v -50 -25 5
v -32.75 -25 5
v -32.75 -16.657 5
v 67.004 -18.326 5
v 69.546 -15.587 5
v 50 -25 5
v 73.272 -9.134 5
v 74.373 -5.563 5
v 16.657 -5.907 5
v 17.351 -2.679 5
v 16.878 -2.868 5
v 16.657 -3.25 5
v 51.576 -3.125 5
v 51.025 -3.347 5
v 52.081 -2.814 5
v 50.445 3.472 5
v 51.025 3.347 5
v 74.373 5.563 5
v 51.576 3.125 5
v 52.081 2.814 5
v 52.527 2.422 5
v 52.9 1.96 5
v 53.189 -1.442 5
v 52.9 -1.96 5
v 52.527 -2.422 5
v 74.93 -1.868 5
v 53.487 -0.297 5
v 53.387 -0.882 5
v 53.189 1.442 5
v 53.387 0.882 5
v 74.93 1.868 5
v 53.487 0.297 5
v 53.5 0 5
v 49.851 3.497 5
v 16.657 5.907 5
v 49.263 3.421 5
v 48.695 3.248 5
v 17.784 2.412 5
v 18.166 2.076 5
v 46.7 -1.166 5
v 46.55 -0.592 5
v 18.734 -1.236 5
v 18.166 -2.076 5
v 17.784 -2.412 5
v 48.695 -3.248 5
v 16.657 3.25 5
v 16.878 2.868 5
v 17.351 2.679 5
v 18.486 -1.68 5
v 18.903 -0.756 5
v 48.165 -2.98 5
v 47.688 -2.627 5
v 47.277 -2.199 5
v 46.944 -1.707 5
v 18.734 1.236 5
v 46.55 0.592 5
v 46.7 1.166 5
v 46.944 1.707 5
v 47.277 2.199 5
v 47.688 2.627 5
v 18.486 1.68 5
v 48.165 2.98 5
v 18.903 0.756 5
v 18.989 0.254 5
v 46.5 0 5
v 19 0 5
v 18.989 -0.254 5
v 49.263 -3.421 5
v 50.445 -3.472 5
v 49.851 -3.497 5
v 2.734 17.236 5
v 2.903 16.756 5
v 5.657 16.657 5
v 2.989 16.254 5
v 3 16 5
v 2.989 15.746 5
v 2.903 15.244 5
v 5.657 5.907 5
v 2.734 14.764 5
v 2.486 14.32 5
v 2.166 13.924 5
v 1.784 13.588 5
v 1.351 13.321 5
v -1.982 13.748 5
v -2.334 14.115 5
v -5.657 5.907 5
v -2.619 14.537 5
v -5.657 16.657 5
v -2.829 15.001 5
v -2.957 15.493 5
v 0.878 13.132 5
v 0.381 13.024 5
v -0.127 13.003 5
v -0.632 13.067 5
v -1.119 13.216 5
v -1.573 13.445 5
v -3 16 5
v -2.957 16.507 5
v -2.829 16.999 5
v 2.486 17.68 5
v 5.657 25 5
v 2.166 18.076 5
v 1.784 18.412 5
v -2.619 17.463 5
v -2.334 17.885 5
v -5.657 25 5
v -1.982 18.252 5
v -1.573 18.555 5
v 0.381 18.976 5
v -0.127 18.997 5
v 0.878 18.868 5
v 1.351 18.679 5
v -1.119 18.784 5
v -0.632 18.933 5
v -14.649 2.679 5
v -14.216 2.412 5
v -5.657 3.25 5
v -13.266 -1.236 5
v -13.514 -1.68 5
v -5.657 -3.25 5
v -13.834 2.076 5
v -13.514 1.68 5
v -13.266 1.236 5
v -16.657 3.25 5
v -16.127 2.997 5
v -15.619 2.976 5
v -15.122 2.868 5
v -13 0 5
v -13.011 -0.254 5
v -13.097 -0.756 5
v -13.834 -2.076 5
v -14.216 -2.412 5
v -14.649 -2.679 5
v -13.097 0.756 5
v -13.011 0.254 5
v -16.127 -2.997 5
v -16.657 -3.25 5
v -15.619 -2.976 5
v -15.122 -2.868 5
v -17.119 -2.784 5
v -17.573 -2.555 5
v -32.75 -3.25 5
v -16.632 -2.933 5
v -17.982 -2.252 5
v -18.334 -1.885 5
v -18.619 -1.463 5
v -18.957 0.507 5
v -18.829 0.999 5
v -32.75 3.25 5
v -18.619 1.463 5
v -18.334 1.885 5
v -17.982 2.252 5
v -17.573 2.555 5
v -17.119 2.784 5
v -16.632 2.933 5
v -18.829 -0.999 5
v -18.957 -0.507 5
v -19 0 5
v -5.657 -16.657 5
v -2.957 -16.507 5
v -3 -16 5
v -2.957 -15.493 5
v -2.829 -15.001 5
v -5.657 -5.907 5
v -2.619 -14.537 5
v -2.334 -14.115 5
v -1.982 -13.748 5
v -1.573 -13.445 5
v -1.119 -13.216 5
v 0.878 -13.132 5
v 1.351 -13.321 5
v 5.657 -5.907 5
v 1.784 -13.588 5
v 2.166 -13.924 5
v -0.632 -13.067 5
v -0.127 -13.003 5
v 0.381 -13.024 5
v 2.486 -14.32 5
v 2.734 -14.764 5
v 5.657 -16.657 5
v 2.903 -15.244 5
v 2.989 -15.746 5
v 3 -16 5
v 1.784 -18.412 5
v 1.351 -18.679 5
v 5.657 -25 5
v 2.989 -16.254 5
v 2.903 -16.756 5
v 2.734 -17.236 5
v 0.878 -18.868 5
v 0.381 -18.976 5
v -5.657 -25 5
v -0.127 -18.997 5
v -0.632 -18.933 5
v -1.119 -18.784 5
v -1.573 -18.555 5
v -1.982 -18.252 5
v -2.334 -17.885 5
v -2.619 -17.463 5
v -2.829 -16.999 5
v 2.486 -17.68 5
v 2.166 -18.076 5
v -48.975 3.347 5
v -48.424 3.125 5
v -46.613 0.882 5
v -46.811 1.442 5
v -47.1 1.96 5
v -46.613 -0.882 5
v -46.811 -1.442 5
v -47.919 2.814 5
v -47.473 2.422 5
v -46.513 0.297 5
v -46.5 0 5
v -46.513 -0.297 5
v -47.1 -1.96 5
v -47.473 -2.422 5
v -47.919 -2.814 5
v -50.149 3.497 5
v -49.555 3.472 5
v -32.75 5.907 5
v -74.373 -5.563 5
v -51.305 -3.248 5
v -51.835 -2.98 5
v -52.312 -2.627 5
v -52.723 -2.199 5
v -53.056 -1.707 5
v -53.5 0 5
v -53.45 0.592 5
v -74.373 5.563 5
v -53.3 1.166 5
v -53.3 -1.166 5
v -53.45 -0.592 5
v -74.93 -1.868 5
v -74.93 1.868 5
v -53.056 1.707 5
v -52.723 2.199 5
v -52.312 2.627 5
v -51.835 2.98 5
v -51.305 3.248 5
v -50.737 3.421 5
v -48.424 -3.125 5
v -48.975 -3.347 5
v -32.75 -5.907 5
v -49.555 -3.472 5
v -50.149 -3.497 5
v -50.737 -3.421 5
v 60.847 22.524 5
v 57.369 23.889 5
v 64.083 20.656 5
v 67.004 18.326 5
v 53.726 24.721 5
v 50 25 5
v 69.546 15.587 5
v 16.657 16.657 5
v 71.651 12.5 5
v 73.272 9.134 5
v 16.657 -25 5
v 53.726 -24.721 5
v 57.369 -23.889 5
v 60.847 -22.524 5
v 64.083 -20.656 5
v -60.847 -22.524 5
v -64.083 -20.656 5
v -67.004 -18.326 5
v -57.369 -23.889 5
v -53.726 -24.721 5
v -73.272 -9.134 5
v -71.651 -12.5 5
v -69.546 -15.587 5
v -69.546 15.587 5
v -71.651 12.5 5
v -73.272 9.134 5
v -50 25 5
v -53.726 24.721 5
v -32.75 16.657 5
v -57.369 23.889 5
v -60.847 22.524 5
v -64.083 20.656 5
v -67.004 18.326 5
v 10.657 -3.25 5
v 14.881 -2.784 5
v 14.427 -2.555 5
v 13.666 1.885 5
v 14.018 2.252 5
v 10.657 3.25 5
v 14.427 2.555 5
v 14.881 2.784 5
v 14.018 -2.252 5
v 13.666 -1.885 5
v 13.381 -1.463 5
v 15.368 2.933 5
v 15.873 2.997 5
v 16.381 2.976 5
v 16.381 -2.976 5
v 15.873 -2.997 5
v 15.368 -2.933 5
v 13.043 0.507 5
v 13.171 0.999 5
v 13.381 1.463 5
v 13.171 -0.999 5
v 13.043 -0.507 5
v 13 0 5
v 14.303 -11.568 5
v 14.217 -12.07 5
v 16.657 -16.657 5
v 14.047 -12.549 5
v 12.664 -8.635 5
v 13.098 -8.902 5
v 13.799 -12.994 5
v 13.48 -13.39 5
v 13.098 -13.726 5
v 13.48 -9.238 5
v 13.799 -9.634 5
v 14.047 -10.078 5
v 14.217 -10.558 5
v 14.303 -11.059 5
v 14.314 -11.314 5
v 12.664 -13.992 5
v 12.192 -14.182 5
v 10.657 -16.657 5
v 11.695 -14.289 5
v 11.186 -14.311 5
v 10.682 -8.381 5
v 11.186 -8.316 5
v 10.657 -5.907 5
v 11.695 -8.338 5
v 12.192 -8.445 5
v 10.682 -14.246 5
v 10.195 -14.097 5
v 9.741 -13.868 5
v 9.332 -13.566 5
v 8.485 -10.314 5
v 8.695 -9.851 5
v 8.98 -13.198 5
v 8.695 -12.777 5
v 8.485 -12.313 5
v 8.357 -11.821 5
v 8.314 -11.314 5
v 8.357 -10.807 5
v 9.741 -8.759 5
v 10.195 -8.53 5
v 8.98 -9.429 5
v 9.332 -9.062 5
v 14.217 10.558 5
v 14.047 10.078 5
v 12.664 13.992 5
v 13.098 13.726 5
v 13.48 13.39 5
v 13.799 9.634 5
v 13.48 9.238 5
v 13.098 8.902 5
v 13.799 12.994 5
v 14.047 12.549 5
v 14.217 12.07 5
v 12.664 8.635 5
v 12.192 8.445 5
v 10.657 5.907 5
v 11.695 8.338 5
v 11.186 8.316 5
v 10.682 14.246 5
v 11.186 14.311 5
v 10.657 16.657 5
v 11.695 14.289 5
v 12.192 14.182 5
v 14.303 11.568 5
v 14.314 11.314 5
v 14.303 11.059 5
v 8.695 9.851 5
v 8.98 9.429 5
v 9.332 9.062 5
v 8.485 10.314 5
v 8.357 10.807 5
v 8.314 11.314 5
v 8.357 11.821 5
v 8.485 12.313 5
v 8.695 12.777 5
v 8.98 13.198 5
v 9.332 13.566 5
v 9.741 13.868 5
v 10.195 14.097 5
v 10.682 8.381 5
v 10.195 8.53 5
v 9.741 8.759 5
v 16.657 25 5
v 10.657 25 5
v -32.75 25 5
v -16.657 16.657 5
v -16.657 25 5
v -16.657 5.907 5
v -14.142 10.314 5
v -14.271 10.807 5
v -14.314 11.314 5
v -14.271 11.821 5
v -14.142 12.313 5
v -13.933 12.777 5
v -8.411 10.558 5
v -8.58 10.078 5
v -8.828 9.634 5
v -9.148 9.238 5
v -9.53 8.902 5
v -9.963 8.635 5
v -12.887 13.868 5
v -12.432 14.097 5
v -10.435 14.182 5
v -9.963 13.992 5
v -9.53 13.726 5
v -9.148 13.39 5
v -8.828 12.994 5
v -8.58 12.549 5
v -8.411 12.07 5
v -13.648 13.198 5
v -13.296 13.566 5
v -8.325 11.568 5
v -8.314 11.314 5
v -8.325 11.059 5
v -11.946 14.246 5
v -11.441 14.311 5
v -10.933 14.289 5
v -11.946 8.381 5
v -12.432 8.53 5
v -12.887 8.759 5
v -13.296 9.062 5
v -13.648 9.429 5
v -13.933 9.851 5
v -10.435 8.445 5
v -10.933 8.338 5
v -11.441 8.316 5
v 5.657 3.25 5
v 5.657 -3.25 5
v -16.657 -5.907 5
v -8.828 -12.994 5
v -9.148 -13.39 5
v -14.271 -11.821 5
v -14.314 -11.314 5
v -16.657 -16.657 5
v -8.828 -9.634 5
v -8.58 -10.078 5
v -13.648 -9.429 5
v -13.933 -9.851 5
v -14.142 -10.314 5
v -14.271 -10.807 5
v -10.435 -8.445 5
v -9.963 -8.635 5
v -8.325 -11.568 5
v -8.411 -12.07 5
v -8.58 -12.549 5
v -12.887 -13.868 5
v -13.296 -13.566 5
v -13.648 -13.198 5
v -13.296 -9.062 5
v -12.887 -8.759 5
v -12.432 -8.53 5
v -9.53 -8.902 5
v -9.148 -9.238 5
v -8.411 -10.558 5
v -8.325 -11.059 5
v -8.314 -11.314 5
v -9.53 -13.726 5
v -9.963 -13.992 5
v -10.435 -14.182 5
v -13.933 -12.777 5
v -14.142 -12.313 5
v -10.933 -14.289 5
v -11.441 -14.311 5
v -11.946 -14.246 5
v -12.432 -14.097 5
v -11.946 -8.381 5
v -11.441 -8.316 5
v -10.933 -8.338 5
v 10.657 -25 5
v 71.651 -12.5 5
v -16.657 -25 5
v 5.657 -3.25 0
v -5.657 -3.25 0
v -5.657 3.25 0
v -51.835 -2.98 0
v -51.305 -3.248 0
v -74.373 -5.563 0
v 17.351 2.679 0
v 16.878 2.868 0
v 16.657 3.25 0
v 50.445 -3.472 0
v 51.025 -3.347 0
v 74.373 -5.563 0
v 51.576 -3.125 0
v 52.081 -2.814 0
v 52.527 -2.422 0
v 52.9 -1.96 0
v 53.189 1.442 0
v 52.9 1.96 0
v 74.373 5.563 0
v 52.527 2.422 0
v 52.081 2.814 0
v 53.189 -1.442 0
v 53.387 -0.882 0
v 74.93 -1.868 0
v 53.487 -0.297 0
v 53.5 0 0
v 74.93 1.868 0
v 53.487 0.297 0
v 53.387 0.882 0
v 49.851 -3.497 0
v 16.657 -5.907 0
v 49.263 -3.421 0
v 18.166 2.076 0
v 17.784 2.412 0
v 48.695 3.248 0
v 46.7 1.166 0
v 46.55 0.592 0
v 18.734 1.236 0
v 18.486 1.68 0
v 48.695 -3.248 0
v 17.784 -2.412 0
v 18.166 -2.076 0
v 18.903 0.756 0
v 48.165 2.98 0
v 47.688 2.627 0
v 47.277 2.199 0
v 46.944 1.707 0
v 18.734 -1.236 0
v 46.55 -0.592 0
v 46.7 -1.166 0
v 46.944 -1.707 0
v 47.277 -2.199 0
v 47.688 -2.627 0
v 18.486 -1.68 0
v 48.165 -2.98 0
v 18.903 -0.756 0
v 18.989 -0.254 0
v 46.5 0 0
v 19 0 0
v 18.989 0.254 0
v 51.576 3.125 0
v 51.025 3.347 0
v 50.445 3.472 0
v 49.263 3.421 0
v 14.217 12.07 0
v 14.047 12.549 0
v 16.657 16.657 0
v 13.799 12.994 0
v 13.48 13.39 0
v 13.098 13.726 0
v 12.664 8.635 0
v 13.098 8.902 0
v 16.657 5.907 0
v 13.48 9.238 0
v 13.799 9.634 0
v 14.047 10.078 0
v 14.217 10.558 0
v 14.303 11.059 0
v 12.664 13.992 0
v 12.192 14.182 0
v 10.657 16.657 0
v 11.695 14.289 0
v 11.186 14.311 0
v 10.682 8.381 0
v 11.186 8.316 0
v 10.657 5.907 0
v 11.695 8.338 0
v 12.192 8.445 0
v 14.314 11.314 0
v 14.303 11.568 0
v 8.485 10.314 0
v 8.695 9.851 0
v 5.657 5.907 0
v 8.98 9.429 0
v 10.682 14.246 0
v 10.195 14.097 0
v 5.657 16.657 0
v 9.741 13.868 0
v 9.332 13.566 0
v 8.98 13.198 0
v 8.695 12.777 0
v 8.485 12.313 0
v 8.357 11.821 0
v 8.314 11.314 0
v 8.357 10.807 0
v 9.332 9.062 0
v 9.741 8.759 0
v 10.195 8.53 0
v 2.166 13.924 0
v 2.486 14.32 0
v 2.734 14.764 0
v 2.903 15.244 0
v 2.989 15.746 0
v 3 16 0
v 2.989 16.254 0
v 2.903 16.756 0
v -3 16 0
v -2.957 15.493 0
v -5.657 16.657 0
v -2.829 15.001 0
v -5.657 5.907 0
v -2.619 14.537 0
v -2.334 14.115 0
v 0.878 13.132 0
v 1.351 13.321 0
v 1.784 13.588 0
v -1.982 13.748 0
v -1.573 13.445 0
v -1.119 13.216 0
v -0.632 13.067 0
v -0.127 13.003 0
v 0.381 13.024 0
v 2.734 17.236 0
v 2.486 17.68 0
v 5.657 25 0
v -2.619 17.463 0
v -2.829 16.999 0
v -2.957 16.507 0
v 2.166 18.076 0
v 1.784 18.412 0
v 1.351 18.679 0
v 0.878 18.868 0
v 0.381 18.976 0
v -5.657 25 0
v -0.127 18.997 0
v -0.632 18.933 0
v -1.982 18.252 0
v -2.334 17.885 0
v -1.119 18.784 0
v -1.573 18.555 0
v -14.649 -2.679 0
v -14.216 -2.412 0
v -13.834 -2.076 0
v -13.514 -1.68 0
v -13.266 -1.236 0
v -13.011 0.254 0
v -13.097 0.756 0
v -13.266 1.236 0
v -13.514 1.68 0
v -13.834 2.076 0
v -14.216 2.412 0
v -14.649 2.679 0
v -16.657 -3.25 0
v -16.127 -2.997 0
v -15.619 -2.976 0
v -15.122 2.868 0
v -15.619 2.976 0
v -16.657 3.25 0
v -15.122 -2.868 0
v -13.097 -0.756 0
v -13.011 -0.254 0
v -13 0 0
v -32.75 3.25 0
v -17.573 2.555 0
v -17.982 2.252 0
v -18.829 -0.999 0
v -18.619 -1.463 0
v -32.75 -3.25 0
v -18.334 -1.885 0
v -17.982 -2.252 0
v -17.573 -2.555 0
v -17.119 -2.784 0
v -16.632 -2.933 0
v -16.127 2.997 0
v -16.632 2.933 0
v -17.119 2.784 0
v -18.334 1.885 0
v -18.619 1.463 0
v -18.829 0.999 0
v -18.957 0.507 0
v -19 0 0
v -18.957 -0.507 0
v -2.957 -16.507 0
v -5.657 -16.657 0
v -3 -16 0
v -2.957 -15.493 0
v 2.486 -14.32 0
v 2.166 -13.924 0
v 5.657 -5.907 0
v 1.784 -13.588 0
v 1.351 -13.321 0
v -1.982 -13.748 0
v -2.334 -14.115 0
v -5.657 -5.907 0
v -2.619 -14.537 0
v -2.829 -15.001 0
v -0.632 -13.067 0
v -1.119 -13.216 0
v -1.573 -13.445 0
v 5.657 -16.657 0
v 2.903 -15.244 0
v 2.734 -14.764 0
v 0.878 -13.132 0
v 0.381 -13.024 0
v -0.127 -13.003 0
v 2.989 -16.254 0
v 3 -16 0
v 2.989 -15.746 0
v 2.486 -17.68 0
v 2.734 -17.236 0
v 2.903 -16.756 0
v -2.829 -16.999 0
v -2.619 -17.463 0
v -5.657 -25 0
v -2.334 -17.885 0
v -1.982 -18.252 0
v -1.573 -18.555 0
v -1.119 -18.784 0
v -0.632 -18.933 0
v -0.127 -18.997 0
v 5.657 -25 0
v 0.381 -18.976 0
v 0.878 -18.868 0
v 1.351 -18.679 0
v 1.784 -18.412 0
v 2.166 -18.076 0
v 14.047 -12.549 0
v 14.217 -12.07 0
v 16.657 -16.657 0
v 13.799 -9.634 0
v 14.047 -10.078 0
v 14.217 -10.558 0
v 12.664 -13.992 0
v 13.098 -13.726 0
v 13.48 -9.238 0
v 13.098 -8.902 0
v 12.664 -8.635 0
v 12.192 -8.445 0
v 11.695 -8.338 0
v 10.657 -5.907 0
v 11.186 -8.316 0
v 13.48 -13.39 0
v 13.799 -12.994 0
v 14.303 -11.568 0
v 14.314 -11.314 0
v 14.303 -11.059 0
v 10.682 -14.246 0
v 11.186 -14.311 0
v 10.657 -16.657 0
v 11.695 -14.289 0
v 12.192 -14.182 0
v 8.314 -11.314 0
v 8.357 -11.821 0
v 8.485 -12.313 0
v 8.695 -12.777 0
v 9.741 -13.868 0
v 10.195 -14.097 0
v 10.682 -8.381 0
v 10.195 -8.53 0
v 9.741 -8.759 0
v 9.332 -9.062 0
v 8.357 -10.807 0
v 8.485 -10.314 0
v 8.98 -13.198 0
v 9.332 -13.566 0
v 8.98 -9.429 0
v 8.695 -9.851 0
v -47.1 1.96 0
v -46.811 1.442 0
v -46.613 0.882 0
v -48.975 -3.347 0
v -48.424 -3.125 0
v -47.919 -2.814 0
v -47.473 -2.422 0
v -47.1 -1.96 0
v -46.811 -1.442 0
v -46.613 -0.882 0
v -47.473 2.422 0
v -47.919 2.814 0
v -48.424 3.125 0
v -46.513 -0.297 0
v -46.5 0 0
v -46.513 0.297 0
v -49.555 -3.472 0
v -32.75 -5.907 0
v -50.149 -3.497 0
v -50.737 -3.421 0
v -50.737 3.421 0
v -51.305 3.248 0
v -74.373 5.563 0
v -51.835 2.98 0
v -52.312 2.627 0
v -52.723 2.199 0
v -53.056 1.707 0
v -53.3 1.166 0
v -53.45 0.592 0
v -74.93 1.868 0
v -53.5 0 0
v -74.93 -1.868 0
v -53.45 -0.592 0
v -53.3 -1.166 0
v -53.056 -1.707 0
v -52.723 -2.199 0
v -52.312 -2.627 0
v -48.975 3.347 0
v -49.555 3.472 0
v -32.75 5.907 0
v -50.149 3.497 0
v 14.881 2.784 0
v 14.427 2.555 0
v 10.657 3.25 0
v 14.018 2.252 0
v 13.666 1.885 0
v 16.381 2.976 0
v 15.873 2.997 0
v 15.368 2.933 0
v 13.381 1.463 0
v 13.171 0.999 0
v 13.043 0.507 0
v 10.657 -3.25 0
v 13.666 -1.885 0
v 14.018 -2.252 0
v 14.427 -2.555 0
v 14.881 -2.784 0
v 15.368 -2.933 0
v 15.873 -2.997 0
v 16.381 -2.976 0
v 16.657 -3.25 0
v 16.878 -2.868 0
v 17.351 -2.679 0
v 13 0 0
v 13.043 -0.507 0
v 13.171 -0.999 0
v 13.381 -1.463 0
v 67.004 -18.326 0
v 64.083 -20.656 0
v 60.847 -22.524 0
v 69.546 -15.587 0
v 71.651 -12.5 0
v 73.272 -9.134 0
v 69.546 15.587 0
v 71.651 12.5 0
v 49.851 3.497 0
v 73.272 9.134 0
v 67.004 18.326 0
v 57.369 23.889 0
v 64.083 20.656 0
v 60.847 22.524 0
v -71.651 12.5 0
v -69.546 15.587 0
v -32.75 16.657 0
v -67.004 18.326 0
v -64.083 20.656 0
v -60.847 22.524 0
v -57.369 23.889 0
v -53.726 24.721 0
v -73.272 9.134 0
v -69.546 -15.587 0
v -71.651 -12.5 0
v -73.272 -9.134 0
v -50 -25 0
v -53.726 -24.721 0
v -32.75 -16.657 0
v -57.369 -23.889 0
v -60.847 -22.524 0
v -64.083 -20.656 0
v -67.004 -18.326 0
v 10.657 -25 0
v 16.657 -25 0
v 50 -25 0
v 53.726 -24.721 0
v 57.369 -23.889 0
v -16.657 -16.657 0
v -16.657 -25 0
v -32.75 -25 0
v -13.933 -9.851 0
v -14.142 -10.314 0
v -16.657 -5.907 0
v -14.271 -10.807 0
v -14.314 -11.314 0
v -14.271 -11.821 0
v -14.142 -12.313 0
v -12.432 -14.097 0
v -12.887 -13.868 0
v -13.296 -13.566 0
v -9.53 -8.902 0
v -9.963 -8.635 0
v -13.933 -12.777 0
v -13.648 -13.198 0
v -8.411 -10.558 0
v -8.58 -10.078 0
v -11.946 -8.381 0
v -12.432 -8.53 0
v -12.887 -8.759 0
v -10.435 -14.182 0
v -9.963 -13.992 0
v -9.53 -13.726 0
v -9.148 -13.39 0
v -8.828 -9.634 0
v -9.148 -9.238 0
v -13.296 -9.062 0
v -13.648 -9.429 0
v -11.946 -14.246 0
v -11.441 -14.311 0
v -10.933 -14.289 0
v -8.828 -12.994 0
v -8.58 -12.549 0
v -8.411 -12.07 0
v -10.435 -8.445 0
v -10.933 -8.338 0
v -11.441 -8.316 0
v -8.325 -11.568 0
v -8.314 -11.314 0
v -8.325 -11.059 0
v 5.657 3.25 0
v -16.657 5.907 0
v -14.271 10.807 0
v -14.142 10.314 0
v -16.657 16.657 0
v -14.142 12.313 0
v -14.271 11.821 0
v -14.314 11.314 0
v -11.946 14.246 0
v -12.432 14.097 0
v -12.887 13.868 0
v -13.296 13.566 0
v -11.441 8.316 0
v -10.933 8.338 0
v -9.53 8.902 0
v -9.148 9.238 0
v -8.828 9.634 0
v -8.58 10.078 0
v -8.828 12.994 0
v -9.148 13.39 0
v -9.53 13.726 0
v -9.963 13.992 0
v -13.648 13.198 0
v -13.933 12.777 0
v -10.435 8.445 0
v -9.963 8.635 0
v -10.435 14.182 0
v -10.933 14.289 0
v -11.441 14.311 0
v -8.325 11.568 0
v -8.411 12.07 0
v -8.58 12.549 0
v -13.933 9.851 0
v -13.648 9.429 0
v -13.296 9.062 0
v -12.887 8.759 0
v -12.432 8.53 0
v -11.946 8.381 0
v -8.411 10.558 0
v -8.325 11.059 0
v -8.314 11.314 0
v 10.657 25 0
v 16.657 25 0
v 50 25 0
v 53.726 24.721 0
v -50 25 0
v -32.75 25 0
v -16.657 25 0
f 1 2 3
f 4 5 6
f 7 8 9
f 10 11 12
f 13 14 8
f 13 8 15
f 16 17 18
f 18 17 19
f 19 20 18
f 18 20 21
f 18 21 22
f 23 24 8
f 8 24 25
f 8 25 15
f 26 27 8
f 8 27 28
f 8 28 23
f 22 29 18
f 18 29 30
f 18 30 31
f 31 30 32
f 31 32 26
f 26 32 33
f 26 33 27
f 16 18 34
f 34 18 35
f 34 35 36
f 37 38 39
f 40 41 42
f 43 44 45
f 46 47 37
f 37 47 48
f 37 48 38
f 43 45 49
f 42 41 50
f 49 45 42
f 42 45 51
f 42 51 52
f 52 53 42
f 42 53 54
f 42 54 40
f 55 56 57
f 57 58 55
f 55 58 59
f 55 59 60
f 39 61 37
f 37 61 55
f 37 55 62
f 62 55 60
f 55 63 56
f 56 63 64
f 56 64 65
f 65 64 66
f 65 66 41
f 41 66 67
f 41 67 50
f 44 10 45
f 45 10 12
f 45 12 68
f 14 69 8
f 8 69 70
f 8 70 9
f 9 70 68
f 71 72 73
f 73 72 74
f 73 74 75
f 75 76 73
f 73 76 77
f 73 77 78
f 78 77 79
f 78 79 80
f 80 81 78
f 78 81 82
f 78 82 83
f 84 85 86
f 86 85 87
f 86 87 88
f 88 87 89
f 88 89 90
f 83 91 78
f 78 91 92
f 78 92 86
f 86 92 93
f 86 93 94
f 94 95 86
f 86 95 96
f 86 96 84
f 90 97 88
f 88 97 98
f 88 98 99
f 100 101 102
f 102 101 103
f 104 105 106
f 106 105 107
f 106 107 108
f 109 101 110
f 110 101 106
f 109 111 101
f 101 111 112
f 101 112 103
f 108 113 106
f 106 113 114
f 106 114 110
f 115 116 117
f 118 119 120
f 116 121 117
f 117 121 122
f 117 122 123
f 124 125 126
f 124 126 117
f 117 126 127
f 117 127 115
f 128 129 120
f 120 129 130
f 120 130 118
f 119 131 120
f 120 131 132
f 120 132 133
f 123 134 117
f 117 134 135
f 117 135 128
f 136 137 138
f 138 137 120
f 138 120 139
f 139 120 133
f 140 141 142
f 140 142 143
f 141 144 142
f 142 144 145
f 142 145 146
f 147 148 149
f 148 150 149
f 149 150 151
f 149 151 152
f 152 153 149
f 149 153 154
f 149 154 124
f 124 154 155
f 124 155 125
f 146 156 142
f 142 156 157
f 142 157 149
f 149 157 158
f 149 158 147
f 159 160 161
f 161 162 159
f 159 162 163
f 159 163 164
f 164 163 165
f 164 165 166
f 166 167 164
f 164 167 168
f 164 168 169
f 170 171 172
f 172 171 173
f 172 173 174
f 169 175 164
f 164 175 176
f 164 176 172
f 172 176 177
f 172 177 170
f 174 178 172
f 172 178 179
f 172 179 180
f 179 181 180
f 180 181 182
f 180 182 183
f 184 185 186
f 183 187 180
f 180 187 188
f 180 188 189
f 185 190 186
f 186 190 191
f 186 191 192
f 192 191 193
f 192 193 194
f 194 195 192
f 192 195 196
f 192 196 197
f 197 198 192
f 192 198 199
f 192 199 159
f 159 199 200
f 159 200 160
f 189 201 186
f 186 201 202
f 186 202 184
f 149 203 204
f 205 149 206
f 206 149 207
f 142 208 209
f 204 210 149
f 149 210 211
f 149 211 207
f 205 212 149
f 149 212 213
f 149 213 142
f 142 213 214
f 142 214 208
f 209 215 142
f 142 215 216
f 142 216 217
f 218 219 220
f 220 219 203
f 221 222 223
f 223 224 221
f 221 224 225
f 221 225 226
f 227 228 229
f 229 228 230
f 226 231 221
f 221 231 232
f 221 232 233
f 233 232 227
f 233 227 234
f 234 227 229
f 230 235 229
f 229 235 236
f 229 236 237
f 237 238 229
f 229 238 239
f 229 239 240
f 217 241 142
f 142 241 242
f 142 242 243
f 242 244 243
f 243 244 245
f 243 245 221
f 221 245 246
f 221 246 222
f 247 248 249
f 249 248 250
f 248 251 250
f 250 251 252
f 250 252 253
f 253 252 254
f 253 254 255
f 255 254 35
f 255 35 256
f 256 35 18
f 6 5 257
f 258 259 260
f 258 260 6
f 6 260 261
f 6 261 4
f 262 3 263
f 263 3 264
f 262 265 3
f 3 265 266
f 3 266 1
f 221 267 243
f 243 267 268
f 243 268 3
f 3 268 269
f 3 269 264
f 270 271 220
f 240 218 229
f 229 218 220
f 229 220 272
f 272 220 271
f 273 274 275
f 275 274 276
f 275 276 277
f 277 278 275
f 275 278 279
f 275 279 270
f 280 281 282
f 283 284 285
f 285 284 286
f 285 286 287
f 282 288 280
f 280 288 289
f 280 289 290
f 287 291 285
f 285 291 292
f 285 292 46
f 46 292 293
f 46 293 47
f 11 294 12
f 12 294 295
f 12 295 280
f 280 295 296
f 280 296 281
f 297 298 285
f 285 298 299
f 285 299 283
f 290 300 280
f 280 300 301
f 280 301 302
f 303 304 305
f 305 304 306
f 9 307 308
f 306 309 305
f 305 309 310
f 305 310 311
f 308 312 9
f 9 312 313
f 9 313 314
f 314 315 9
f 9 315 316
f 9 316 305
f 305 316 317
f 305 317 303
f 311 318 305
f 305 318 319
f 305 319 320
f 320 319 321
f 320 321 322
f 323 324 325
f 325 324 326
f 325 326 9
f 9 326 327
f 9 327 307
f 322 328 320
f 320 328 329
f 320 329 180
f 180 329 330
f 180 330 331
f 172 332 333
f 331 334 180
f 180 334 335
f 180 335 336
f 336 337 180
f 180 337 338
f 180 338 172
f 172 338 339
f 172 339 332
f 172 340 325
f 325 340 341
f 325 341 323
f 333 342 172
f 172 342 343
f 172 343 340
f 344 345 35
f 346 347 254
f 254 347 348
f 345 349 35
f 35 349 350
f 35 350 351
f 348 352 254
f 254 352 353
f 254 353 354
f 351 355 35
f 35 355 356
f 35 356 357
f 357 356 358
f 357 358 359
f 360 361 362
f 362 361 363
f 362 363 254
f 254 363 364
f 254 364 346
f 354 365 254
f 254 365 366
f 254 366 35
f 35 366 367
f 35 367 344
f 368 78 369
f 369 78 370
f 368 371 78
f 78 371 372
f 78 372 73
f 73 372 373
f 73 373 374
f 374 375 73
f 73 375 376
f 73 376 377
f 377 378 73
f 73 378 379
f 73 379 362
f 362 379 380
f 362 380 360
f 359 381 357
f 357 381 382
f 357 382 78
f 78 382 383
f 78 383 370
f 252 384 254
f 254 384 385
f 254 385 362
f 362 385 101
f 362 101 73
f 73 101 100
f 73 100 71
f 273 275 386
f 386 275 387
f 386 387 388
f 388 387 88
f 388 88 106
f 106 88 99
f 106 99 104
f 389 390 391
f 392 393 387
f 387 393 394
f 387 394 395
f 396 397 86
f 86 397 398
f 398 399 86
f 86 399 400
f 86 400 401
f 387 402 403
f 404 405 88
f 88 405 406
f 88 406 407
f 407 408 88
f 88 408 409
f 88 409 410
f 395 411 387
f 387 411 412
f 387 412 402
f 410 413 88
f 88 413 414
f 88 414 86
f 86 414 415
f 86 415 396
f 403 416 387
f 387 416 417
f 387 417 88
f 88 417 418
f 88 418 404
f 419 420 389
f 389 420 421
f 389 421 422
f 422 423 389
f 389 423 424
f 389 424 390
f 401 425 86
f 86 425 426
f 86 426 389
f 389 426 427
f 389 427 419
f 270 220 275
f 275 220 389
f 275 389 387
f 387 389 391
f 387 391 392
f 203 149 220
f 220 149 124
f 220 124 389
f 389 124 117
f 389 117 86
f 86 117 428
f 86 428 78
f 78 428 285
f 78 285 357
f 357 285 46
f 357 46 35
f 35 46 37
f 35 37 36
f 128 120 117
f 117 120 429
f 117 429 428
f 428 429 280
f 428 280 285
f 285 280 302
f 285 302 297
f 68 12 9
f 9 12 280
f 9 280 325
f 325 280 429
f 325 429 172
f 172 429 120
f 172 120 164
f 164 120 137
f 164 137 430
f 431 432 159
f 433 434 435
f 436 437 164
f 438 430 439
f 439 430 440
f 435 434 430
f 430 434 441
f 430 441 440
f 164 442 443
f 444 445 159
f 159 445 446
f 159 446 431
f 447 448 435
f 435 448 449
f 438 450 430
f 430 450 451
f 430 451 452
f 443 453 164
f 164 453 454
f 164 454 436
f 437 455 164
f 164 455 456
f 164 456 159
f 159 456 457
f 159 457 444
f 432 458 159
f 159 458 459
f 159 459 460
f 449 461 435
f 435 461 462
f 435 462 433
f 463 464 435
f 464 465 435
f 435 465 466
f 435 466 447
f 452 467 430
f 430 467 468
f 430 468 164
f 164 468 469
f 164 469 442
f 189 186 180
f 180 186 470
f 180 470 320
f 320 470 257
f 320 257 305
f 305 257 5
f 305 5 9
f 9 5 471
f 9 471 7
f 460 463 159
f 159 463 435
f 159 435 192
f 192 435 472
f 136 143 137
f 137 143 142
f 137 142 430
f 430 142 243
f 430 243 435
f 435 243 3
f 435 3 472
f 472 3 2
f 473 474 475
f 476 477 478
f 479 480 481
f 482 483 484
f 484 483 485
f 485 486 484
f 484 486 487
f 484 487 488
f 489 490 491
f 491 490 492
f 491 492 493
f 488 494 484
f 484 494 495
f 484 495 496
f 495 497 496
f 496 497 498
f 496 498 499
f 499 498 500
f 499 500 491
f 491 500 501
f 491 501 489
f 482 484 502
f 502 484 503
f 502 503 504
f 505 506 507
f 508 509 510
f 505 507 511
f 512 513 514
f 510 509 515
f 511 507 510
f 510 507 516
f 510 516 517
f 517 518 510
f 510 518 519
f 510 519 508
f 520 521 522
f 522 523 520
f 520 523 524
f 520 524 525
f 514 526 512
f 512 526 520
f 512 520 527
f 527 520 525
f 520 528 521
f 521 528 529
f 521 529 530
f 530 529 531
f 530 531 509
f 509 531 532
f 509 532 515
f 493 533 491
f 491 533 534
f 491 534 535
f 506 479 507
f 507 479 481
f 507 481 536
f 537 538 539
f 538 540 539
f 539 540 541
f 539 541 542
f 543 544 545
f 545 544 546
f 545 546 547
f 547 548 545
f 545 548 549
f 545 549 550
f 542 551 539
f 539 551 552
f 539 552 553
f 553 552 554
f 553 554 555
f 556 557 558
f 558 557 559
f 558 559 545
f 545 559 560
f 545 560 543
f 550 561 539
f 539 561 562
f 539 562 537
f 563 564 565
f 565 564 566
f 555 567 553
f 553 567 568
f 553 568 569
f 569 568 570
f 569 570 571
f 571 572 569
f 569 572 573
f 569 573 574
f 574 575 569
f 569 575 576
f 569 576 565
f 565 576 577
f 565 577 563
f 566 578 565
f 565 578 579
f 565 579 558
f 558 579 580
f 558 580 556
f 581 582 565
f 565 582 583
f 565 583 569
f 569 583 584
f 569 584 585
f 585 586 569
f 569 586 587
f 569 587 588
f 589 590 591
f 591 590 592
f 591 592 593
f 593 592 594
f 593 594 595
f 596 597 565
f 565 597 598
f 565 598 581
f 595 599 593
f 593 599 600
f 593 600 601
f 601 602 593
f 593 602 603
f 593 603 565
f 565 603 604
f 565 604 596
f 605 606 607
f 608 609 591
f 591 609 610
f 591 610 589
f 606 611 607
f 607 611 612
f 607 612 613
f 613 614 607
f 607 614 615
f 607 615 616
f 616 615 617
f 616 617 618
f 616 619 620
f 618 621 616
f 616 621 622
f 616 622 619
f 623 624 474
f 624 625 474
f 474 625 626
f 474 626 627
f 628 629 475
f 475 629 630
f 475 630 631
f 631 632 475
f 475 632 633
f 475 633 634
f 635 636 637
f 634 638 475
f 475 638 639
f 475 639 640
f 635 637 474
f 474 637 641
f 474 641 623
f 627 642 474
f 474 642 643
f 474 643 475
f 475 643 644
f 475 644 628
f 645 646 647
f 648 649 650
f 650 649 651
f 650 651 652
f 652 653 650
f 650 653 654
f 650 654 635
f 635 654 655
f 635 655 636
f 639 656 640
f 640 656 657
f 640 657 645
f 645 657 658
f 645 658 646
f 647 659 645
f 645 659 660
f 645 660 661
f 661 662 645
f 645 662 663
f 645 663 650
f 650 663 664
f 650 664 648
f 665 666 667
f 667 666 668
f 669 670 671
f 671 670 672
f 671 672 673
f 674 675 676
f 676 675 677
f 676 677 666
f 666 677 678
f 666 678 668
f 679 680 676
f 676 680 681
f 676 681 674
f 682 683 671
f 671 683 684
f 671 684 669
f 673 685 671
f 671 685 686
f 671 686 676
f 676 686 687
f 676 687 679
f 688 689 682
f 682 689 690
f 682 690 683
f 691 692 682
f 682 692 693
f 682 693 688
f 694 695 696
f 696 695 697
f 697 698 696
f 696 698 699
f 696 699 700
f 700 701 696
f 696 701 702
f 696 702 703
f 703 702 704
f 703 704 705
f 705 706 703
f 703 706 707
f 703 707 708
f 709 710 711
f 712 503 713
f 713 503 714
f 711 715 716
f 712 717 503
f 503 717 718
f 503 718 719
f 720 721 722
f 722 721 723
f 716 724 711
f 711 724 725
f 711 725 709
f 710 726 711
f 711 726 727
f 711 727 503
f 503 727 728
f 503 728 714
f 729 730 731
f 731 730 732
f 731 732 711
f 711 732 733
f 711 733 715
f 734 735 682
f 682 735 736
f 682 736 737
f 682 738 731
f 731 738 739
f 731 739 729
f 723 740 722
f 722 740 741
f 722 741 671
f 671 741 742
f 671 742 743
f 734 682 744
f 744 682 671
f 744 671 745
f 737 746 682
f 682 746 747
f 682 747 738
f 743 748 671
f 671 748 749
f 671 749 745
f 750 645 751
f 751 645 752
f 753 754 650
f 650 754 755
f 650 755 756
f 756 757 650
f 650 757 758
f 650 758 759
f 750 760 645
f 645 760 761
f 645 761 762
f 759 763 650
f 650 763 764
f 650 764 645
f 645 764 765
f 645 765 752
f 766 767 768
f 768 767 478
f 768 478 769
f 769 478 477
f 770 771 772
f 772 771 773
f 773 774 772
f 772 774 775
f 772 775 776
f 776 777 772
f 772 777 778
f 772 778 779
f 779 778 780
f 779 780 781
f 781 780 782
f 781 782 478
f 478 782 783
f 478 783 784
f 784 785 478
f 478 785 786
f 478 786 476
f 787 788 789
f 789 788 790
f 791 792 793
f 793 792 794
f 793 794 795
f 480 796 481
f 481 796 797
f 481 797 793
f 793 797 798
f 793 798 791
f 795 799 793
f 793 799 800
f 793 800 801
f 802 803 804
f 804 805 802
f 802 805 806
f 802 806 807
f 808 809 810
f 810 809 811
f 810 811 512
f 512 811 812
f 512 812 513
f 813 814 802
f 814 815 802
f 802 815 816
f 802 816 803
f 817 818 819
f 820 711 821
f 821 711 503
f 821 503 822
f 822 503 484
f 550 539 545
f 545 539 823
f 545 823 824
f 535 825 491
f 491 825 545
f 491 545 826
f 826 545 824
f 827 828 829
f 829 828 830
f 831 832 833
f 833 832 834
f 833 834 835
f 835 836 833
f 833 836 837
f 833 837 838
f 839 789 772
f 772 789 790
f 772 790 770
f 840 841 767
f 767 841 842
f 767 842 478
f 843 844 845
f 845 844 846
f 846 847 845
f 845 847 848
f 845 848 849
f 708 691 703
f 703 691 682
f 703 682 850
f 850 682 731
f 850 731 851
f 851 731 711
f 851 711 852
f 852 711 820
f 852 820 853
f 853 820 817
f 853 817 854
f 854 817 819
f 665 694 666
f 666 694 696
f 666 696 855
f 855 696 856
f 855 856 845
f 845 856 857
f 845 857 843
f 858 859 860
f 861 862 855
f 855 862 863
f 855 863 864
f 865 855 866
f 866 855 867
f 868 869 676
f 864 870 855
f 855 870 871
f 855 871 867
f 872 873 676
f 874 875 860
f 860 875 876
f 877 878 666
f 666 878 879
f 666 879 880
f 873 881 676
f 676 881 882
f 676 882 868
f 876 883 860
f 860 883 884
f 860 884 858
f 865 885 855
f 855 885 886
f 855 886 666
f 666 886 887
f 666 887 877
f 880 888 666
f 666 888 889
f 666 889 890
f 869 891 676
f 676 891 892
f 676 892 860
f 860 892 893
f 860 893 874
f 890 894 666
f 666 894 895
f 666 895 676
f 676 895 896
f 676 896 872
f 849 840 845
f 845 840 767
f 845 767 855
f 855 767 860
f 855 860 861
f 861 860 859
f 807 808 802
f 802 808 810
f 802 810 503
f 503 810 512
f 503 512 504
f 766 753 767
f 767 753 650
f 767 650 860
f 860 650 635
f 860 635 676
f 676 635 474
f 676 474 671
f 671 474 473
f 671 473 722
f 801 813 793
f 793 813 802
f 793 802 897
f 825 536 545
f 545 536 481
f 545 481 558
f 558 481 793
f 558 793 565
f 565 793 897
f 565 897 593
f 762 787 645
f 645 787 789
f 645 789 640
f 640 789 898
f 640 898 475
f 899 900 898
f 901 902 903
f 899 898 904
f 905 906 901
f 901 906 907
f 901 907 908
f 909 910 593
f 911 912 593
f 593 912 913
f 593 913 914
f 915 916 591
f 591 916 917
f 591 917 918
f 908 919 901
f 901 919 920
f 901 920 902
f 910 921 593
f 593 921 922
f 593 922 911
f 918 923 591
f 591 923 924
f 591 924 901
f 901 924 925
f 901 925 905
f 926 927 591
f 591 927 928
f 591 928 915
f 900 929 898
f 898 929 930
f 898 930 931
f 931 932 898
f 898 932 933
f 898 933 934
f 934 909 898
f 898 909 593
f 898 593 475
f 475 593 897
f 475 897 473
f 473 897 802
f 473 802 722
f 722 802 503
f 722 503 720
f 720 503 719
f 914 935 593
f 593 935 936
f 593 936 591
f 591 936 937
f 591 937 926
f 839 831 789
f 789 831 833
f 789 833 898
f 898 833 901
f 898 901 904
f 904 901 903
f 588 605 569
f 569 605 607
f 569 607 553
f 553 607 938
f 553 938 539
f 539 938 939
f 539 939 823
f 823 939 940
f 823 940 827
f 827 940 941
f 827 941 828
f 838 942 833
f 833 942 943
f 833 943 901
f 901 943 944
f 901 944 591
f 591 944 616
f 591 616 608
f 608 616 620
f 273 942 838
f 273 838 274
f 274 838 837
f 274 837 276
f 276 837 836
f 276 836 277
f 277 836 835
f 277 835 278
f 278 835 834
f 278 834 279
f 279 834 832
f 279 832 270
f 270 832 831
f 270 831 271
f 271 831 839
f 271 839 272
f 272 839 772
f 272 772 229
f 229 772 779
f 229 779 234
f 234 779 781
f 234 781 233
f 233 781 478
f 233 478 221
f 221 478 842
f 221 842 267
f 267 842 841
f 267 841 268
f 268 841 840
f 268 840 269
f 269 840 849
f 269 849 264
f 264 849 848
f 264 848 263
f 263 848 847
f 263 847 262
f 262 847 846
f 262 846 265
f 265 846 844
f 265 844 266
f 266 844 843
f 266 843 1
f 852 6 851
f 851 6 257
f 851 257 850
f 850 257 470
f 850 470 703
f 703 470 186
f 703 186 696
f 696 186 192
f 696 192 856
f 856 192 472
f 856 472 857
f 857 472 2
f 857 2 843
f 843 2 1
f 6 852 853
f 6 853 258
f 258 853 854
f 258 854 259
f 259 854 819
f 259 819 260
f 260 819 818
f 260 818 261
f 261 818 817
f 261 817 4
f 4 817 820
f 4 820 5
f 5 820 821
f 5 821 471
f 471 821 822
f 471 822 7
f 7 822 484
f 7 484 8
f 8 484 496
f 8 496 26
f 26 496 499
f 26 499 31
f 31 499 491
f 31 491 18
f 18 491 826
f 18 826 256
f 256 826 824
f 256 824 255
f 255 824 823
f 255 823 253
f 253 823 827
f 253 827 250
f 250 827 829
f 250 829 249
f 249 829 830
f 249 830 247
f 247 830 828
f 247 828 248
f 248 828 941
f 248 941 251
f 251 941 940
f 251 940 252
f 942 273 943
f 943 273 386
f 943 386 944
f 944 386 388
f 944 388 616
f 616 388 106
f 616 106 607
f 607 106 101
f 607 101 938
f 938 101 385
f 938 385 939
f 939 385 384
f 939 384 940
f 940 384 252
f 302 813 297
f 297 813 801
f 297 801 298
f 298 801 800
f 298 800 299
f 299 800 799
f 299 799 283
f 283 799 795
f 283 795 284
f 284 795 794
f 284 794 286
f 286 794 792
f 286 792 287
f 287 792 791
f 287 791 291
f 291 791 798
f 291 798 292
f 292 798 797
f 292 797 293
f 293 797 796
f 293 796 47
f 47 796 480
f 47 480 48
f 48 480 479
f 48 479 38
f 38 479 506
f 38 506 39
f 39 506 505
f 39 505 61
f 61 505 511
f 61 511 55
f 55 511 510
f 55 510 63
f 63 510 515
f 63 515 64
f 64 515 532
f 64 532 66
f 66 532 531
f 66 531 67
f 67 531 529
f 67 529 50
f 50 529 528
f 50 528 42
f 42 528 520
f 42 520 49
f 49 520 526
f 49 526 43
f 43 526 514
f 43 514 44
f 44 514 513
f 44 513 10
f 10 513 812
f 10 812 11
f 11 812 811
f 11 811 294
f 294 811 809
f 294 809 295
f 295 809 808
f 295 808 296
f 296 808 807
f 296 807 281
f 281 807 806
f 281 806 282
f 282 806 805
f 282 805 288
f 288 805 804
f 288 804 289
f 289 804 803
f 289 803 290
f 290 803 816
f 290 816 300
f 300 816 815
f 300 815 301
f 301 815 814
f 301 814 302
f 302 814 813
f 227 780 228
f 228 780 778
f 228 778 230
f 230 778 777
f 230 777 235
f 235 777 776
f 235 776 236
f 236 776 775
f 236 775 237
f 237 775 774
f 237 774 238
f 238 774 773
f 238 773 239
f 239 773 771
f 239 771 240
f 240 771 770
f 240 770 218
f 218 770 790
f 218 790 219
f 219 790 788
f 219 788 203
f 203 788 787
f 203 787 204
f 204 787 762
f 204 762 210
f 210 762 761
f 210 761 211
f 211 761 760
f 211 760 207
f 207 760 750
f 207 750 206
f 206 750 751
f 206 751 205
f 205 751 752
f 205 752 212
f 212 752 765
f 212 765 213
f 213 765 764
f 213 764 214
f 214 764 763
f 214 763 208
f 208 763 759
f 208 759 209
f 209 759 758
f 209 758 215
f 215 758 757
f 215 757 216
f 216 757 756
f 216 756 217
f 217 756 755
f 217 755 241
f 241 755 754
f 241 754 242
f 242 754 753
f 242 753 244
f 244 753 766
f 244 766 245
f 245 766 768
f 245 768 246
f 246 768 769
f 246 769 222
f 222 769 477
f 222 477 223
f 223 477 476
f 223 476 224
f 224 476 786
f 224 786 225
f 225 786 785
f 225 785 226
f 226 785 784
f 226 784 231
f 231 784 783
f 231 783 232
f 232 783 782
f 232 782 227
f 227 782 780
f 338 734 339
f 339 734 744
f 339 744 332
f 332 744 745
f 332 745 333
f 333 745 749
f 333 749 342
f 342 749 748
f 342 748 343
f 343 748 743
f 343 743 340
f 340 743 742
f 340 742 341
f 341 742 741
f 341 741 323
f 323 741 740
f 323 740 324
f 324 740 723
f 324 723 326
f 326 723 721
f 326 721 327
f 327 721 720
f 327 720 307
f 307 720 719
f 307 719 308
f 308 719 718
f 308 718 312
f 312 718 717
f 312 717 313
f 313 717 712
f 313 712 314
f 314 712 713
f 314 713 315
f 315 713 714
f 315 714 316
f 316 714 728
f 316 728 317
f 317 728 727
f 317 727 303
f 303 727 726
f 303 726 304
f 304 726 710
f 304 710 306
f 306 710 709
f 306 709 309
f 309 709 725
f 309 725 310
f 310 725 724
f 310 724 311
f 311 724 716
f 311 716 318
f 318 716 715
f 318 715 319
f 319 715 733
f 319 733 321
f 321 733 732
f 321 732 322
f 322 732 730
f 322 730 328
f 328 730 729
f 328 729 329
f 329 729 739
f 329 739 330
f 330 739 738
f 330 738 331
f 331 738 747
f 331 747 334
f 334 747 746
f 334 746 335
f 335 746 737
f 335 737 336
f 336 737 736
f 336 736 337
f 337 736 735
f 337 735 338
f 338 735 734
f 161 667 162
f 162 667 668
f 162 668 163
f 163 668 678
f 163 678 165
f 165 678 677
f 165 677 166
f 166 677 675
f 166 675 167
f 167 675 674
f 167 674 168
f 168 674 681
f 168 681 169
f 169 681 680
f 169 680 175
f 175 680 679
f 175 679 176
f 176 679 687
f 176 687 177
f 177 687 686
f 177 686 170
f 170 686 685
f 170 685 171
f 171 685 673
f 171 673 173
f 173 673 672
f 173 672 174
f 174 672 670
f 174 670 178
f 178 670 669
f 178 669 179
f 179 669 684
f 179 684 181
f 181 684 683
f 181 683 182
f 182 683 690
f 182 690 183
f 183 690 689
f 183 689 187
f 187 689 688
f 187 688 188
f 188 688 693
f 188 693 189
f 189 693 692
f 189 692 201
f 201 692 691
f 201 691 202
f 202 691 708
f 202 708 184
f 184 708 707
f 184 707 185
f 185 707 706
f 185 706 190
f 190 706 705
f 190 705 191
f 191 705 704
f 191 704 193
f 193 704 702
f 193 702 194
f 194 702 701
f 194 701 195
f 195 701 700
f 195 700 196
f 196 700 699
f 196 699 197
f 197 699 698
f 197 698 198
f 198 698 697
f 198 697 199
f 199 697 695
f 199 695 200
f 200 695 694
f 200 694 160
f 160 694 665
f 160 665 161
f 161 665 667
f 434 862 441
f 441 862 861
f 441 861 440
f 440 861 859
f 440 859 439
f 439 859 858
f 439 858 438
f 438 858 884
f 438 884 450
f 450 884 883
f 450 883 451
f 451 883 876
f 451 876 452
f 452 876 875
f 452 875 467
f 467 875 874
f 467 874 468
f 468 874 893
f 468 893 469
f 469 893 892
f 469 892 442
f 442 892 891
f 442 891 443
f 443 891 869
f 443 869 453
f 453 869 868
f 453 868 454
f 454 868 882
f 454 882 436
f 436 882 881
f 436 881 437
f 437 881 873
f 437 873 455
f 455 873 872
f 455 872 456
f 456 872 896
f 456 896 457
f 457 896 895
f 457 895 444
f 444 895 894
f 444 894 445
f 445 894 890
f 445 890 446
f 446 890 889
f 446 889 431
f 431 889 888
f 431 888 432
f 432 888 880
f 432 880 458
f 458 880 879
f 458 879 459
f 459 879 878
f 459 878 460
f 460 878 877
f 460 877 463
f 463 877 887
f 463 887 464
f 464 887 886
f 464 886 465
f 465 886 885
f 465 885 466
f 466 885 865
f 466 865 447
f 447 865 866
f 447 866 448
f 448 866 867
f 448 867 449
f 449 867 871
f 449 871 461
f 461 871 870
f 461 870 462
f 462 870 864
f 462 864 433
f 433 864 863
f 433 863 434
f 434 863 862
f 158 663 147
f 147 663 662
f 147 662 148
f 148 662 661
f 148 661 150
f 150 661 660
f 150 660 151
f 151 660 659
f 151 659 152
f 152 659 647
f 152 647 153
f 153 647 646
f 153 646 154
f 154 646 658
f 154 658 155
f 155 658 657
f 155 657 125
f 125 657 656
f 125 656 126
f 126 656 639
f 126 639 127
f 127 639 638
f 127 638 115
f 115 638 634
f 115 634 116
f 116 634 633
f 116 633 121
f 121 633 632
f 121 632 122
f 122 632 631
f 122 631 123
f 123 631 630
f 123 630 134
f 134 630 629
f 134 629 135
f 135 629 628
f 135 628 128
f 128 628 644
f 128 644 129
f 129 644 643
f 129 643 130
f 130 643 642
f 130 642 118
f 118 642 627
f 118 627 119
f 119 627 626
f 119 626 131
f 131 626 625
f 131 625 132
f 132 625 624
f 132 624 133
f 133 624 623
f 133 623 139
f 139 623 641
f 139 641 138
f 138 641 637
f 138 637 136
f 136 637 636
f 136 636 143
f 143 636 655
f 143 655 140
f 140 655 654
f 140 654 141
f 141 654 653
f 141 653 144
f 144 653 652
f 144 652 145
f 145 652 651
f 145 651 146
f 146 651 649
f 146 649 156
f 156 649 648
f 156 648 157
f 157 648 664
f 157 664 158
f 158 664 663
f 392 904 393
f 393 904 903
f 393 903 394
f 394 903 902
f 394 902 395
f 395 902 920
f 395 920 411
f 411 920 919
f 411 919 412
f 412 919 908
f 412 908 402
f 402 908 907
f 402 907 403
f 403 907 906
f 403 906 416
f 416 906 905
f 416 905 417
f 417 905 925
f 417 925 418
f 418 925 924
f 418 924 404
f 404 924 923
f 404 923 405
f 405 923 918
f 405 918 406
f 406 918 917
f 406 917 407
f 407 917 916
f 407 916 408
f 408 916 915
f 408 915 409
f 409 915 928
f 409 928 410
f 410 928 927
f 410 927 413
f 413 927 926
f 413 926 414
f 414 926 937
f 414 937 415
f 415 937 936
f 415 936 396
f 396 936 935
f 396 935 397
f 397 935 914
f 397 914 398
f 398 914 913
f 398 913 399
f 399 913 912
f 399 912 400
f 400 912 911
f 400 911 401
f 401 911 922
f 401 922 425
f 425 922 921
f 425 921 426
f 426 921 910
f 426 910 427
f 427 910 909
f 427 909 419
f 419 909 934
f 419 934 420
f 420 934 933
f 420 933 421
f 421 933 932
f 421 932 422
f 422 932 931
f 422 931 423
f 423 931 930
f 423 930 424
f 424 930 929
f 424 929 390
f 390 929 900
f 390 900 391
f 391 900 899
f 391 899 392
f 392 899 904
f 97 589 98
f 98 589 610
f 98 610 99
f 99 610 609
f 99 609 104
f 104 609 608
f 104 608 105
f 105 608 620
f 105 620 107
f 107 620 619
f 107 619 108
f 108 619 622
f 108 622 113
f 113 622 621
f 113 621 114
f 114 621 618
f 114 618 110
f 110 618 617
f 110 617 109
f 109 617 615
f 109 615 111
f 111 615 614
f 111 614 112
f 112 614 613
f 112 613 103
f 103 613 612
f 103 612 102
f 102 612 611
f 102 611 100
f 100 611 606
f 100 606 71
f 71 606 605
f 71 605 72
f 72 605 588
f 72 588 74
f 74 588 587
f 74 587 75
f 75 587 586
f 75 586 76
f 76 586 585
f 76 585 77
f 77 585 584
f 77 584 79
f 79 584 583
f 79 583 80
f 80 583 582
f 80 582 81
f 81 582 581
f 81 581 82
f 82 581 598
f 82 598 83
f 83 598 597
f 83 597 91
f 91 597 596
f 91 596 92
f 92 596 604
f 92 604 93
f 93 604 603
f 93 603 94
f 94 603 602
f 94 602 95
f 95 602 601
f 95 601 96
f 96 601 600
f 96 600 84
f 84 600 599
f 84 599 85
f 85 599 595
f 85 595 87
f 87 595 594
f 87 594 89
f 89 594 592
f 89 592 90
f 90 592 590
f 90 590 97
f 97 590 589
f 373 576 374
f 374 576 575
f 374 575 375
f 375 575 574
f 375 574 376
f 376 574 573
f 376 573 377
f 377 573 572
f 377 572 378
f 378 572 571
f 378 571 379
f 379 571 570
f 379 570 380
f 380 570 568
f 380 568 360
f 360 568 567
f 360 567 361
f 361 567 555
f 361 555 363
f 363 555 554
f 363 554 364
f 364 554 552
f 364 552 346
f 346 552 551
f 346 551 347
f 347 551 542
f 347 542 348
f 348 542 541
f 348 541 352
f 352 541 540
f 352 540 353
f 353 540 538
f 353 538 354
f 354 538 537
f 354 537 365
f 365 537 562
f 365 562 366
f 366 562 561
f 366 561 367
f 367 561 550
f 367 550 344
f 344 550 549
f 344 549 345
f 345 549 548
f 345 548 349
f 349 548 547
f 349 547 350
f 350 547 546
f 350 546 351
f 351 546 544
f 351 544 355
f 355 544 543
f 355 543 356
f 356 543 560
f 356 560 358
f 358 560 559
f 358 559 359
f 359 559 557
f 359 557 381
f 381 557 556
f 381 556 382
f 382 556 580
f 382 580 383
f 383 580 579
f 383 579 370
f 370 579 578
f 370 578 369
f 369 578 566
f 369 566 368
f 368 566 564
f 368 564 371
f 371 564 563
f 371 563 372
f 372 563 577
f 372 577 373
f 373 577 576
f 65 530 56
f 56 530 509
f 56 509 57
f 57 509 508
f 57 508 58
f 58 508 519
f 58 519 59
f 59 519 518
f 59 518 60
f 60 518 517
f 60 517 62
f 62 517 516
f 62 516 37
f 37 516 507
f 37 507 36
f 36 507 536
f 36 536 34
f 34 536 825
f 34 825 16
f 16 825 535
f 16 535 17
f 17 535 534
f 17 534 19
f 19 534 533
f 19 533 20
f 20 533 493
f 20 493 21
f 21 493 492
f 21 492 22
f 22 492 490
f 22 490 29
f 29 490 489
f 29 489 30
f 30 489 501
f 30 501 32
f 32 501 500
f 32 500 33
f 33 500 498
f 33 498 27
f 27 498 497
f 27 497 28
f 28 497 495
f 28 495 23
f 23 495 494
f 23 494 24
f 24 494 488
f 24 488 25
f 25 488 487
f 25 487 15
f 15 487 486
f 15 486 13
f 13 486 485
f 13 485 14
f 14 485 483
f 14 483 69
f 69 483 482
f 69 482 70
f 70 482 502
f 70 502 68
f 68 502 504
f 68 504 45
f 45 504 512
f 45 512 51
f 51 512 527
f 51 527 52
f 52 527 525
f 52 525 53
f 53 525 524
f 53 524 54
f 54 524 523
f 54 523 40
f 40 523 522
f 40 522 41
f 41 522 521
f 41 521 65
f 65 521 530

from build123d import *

# Parameters (mm, degrees)
SKETCH_1_R      = 3
SKETCH_1_R_2    = 3.5
EXTRUDE_1_DEPTH = 5


with BuildPart() as part:
    # 草图1 → 凸台-拉伸1 (new body)
    with BuildSketch(Plane.XY):
        with BuildLine():
            Line((-50, 25), (50, 25))
            ThreePointArc((50, 25), (75, 0), (50, -25))
            Line((50, -25), (-50, -25))
            ThreePointArc((-50, -25), (-75, 0), (-50, 25))
        make_face()
        with Locations((16, 0)):
            Circle(SKETCH_1_R, mode=Mode.SUBTRACT)
        with Locations((11.313708499, -11.313708499)):
            Circle(SKETCH_1_R, mode=Mode.SUBTRACT)
        with Locations((0, -16)):
            Circle(SKETCH_1_R, mode=Mode.SUBTRACT)
        with Locations((-11.313708499, -11.313708499)):
            Circle(SKETCH_1_R, mode=Mode.SUBTRACT)
        with Locations((-16, 0)):
            Circle(SKETCH_1_R, mode=Mode.SUBTRACT)
        with Locations((-11.313708499, 11.313708499)):
            Circle(SKETCH_1_R, mode=Mode.SUBTRACT)
        with Locations((0, 16)):
            Circle(SKETCH_1_R, mode=Mode.SUBTRACT)
        with Locations((11.313708499, 11.313708499)):
            Circle(SKETCH_1_R, mode=Mode.SUBTRACT)
        with Locations((-50, 0)):
            Circle(SKETCH_1_R_2, mode=Mode.SUBTRACT)
        with Locations((50, 0)):
            Circle(SKETCH_1_R_2, mode=Mode.SUBTRACT)
    extrude(amount=EXTRUDE_1_DEPTH)


solid = part.part
